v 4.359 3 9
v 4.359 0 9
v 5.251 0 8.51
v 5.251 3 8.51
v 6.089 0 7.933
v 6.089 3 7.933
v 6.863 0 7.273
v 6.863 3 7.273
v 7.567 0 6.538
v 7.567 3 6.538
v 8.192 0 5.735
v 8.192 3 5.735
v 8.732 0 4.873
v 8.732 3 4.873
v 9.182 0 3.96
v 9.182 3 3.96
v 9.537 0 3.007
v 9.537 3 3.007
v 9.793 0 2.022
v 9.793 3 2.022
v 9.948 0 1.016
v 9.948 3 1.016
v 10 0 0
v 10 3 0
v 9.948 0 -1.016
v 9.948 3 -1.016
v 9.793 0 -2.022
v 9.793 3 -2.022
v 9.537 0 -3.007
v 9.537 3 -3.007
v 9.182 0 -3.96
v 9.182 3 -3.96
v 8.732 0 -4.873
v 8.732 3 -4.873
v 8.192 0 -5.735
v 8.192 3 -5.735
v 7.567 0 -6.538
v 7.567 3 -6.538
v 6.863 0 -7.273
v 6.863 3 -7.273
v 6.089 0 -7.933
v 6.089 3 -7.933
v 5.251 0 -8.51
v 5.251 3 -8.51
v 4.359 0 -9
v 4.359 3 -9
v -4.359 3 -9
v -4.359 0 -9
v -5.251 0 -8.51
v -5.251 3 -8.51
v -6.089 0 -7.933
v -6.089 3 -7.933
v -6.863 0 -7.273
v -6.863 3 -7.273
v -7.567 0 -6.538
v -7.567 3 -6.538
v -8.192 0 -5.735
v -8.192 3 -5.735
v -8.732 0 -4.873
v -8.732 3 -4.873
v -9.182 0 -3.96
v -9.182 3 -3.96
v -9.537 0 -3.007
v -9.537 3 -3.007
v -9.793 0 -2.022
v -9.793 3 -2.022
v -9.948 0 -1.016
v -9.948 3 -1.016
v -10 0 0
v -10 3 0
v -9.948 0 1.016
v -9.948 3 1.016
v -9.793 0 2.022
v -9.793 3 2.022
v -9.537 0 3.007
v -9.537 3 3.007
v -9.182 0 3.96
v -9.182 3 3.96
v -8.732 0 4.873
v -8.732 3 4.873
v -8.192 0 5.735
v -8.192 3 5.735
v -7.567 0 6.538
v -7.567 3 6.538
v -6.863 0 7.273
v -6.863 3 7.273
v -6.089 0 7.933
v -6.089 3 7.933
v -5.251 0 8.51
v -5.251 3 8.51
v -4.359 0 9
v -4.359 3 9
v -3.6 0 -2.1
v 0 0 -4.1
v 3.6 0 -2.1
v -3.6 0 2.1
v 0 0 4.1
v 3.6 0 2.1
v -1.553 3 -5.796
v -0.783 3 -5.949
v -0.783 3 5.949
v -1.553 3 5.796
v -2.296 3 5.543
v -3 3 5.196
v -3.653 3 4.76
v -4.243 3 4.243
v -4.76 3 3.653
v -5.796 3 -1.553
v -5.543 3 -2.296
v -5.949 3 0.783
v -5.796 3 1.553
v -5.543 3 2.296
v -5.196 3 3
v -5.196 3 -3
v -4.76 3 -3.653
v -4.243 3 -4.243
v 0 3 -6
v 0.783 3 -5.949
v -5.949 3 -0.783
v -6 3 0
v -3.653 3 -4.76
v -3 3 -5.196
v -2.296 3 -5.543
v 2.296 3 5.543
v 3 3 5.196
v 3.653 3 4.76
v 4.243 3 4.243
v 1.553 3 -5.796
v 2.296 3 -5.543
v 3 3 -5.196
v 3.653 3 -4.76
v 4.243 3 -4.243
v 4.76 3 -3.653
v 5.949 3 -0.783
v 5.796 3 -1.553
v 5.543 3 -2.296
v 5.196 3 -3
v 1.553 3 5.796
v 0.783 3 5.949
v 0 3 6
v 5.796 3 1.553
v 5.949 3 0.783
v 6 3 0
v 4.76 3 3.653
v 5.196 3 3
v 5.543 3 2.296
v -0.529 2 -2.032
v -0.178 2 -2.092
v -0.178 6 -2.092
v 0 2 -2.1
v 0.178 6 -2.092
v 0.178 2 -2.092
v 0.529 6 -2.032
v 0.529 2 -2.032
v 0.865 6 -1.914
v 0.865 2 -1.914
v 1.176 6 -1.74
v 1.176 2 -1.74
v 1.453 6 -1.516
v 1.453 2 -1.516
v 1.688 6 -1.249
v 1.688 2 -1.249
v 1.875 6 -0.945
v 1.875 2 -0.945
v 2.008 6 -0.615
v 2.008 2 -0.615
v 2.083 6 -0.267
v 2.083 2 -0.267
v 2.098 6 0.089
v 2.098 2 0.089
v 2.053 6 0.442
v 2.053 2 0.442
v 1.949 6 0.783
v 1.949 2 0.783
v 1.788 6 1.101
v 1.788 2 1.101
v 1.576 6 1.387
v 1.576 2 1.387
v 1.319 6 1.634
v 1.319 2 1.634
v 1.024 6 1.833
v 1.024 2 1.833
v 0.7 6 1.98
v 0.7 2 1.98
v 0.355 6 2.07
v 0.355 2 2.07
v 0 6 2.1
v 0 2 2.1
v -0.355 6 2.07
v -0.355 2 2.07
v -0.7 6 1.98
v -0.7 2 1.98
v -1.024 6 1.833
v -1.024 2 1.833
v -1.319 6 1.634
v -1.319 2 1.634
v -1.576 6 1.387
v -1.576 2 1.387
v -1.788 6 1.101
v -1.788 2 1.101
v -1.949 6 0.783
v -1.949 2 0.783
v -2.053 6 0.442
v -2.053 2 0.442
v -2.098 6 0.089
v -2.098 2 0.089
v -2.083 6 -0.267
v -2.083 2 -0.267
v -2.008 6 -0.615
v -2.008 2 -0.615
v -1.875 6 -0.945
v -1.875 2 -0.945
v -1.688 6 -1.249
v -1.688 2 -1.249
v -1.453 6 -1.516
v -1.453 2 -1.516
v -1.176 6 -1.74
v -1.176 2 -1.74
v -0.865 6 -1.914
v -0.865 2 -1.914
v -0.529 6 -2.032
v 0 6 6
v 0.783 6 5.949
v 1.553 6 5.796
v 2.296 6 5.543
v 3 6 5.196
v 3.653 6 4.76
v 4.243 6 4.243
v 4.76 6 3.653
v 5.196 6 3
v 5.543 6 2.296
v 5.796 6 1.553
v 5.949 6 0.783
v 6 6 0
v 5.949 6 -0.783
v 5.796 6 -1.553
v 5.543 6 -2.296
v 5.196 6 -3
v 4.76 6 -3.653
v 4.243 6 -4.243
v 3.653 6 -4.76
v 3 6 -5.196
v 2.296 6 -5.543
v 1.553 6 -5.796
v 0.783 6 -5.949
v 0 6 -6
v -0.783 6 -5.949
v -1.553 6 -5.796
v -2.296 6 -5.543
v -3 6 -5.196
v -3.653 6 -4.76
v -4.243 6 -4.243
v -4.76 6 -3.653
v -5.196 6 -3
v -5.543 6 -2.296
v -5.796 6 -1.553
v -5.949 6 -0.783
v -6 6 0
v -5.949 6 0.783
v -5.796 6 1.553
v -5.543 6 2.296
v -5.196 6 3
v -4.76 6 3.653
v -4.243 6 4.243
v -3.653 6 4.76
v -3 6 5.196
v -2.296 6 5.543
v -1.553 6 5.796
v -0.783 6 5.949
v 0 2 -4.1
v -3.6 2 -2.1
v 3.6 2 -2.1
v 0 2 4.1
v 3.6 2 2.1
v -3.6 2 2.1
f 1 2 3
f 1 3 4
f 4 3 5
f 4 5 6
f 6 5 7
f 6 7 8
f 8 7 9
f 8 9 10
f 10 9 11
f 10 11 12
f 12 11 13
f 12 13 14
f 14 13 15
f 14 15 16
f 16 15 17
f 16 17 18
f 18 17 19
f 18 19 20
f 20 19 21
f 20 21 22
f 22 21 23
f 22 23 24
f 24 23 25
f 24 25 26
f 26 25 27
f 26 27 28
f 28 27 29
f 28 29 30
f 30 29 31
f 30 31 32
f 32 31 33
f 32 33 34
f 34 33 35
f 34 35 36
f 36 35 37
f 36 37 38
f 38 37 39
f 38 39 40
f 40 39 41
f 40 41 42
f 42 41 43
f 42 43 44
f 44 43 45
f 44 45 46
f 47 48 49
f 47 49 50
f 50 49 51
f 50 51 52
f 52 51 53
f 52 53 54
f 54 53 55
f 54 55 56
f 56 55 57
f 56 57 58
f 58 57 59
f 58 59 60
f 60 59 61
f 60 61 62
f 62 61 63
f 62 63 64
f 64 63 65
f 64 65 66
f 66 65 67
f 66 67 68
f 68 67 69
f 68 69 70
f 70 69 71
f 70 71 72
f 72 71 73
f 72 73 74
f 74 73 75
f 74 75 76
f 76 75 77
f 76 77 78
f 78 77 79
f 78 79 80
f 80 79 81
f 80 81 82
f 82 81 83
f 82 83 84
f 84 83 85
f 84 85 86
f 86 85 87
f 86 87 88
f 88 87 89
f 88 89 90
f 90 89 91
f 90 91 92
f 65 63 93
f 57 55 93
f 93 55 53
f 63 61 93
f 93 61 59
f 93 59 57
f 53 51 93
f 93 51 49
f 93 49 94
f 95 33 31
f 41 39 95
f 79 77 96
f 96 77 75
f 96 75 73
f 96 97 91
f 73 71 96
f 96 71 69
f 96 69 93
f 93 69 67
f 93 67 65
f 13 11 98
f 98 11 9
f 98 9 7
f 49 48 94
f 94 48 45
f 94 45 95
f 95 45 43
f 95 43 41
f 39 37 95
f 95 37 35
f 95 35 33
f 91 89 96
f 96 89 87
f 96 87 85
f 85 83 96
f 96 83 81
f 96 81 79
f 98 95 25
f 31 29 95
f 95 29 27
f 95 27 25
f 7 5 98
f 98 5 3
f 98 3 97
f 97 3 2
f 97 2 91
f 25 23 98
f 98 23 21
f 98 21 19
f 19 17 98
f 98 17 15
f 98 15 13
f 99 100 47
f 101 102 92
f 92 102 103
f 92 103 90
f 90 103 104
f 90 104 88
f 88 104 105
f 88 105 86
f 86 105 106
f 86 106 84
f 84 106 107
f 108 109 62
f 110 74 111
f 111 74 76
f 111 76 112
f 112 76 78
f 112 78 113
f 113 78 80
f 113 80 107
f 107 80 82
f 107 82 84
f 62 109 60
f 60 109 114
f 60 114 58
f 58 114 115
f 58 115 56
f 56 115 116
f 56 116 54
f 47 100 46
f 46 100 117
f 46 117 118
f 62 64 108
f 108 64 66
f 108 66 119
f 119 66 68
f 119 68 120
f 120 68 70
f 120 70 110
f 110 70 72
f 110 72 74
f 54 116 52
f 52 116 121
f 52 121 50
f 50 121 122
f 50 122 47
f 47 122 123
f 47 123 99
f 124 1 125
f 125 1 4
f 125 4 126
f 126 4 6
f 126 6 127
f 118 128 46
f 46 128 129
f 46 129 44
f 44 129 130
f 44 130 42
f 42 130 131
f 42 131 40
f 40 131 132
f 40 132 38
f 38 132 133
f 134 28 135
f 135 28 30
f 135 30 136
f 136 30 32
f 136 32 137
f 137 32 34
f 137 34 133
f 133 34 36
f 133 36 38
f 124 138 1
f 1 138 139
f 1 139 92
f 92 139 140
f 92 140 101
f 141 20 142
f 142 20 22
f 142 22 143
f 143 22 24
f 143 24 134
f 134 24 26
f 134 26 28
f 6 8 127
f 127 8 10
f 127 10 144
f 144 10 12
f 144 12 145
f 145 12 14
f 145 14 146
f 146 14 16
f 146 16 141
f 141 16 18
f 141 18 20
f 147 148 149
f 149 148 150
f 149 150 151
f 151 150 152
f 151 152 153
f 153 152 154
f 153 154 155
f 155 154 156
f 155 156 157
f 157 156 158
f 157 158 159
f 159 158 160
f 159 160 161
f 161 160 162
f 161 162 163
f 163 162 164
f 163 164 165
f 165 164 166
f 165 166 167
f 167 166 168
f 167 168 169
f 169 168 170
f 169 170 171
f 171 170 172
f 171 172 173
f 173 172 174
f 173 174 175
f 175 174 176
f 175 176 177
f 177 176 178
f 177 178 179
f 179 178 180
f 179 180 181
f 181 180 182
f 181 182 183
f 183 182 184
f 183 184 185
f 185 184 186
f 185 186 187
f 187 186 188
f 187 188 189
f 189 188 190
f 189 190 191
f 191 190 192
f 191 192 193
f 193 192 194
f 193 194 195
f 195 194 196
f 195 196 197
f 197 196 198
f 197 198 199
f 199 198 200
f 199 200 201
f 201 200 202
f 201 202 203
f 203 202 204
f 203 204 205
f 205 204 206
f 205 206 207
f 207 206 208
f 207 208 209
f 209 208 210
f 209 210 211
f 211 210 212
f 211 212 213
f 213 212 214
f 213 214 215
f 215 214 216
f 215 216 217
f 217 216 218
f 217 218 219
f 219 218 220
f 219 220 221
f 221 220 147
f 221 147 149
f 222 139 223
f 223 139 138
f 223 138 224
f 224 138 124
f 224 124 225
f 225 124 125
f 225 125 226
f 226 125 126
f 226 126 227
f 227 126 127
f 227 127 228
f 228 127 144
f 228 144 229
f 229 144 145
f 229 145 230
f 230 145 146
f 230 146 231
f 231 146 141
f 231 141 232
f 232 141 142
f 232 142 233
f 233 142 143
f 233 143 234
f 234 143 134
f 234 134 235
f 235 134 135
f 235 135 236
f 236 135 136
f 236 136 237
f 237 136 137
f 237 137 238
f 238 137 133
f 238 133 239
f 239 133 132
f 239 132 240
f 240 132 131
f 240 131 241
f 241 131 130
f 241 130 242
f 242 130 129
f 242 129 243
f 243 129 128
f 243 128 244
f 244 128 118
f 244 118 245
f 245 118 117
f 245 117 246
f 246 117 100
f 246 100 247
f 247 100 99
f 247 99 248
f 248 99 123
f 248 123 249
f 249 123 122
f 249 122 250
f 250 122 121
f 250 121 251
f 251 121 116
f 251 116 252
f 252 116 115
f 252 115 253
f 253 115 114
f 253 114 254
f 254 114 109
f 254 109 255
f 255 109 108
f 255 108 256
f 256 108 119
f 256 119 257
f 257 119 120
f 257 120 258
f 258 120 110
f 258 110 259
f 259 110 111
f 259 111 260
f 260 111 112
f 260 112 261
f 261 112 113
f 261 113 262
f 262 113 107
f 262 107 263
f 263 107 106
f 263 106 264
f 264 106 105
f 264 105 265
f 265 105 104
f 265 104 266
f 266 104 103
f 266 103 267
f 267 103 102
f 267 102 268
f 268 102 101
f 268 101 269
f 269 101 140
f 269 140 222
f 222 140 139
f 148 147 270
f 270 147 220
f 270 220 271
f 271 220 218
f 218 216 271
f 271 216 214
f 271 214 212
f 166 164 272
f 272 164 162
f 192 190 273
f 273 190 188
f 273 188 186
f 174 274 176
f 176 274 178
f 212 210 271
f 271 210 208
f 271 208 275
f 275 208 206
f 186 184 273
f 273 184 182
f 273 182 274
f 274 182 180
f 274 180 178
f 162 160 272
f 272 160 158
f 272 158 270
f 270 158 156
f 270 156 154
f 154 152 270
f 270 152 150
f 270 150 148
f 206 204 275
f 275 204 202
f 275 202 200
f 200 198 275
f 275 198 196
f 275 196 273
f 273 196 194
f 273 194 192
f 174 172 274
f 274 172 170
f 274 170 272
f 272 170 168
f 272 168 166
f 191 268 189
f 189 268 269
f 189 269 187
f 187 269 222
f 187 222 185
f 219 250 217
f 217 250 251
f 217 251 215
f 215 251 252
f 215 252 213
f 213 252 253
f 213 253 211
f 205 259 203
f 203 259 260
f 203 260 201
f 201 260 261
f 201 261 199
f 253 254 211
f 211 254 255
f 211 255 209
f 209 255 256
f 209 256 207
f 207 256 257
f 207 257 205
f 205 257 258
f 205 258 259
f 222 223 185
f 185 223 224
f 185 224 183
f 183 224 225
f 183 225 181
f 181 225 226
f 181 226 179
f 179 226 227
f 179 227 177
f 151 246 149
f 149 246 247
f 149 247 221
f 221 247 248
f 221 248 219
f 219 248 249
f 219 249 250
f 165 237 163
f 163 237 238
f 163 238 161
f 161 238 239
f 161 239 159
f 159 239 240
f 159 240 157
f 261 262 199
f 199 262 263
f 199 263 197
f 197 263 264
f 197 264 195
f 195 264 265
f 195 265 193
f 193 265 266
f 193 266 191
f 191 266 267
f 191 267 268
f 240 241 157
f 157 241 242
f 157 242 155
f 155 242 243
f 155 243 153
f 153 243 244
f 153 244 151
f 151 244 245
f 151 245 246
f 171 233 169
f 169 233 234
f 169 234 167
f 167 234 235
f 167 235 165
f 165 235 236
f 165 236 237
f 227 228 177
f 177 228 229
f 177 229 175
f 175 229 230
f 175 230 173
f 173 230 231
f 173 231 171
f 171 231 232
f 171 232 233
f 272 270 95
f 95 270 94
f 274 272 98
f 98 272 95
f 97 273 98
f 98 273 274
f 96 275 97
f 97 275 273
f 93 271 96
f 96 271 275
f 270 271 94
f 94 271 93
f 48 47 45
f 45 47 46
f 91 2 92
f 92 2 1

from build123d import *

# Parameters (mm, degrees)
SKETCH1_R           = 10
BOSS_EXTRUDE2_DEPTH = 8
SKETCH3_R           = 10
SKETCH3_R_2         = 6
CUT_EXTRUDE1_DEPTH  = 5
SKETCH4_R           = 2.1
CUT_EXTRUDE2_DEPTH  = 11
SKETCH5_R           = 6
CUT_EXTRUDE3_DEPTH  = 1.5
SKETCH6_R           = 6.5
CUT_EXTRUDE4_DEPTH  = 2
SKETCH7_R           = 6
CUT_EXTRUDE5_DEPTH  = 1
SKETCH8_R           = 6
CUT_EXTRUDE6_DEPTH  = 1
SKETCH9_R           = 6.5
BOSS_EXTRUDE3_DEPTH = 2
CUT_EXTRUDE7_DEPTH  = 10


with BuildPart() as part:
    # Sketch1 → Boss-Extrude2 (new body)
    with BuildSketch(Plane(origin=(0, 0, 0), x_dir=(1, 0, 0), z_dir=(0, 1, 0))):
        Circle(SKETCH1_R)
    extrude(amount=BOSS_EXTRUDE2_DEPTH)

    # Sketch3 → Cut-Extrude1 (cut)
    with BuildSketch(Plane(origin=(0, 8, 0), x_dir=(1, 0, 0), z_dir=(0, 1, 0))):
        Circle(SKETCH3_R)
        Circle(SKETCH3_R_2, mode=Mode.SUBTRACT)
    extrude(amount=-CUT_EXTRUDE1_DEPTH, mode=Mode.SUBTRACT)

    # Sketch4 → Cut-Extrude2 (cut)
    with BuildSketch(Plane(origin=(0, 8, 0), x_dir=(1, 0, 0), z_dir=(0, 1, 0))):
        Circle(SKETCH4_R)
    extrude(amount=-CUT_EXTRUDE2_DEPTH, mode=Mode.SUBTRACT)

    # Sketch5 → Cut-Extrude3 (cut)
    with BuildSketch(Plane.XZ):
        Circle(SKETCH5_R)
    extrude(amount=-CUT_EXTRUDE3_DEPTH, mode=Mode.SUBTRACT)

    # Sketch6 → Cut-Extrude4 (cut)
    with BuildSketch(Plane.XZ):
        Circle(SKETCH6_R)
    extrude(amount=-CUT_EXTRUDE4_DEPTH, mode=Mode.SUBTRACT)

    # Sketch7 → Cut-Extrude5 (cut)
    with BuildSketch(Plane(origin=(0, 8, 0), x_dir=(1, 0, 0), z_dir=(0, 1, 0))):
        Circle(SKETCH7_R)
    extrude(amount=-CUT_EXTRUDE5_DEPTH, mode=Mode.SUBTRACT)

    # Sketch8 → Cut-Extrude6 (cut)
    with BuildSketch(Plane(origin=(0, 7, 0), x_dir=(1, 0, 0), z_dir=(0, 1, 0))):
        Circle(SKETCH8_R)
    extrude(amount=-CUT_EXTRUDE6_DEPTH, mode=Mode.SUBTRACT)

    # Sketch9 → Boss-Extrude3 (add)
    with BuildSketch(Plane.XZ.offset(-2)):
        Circle(SKETCH9_R)
        Polygon((-3.6, -2.1), (0, -4.1), (3.6, -2.1), (3.6, 2.1), (0, 4.1), (-3.6, 2.1), align=None, mode=Mode.SUBTRACT)
    extrude(amount=BOSS_EXTRUDE3_DEPTH)

    # Sketch10 → Cut-Extrude7 (cut)
    with BuildSketch(Plane(origin=(0, 0, 0), x_dir=(-1, 0, 0), z_dir=(0, -1, 0))):
        with BuildLine():
            ThreePointArc((-4.358898944, -9), (0, -10), (4.358898944, -9))
            Line((4.358898944, -9), (-4.358898944, -9))
        make_face()
        with BuildLine():
            ThreePointArc((4.358898944, 9), (0, 10), (-4.358898944, 9))
            Line((-4.358898944, 9), (4.358898944, 9))
        make_face()
    extrude(amount=-CUT_EXTRUDE7_DEPTH, mode=Mode.SUBTRACT)


solid = part.part
